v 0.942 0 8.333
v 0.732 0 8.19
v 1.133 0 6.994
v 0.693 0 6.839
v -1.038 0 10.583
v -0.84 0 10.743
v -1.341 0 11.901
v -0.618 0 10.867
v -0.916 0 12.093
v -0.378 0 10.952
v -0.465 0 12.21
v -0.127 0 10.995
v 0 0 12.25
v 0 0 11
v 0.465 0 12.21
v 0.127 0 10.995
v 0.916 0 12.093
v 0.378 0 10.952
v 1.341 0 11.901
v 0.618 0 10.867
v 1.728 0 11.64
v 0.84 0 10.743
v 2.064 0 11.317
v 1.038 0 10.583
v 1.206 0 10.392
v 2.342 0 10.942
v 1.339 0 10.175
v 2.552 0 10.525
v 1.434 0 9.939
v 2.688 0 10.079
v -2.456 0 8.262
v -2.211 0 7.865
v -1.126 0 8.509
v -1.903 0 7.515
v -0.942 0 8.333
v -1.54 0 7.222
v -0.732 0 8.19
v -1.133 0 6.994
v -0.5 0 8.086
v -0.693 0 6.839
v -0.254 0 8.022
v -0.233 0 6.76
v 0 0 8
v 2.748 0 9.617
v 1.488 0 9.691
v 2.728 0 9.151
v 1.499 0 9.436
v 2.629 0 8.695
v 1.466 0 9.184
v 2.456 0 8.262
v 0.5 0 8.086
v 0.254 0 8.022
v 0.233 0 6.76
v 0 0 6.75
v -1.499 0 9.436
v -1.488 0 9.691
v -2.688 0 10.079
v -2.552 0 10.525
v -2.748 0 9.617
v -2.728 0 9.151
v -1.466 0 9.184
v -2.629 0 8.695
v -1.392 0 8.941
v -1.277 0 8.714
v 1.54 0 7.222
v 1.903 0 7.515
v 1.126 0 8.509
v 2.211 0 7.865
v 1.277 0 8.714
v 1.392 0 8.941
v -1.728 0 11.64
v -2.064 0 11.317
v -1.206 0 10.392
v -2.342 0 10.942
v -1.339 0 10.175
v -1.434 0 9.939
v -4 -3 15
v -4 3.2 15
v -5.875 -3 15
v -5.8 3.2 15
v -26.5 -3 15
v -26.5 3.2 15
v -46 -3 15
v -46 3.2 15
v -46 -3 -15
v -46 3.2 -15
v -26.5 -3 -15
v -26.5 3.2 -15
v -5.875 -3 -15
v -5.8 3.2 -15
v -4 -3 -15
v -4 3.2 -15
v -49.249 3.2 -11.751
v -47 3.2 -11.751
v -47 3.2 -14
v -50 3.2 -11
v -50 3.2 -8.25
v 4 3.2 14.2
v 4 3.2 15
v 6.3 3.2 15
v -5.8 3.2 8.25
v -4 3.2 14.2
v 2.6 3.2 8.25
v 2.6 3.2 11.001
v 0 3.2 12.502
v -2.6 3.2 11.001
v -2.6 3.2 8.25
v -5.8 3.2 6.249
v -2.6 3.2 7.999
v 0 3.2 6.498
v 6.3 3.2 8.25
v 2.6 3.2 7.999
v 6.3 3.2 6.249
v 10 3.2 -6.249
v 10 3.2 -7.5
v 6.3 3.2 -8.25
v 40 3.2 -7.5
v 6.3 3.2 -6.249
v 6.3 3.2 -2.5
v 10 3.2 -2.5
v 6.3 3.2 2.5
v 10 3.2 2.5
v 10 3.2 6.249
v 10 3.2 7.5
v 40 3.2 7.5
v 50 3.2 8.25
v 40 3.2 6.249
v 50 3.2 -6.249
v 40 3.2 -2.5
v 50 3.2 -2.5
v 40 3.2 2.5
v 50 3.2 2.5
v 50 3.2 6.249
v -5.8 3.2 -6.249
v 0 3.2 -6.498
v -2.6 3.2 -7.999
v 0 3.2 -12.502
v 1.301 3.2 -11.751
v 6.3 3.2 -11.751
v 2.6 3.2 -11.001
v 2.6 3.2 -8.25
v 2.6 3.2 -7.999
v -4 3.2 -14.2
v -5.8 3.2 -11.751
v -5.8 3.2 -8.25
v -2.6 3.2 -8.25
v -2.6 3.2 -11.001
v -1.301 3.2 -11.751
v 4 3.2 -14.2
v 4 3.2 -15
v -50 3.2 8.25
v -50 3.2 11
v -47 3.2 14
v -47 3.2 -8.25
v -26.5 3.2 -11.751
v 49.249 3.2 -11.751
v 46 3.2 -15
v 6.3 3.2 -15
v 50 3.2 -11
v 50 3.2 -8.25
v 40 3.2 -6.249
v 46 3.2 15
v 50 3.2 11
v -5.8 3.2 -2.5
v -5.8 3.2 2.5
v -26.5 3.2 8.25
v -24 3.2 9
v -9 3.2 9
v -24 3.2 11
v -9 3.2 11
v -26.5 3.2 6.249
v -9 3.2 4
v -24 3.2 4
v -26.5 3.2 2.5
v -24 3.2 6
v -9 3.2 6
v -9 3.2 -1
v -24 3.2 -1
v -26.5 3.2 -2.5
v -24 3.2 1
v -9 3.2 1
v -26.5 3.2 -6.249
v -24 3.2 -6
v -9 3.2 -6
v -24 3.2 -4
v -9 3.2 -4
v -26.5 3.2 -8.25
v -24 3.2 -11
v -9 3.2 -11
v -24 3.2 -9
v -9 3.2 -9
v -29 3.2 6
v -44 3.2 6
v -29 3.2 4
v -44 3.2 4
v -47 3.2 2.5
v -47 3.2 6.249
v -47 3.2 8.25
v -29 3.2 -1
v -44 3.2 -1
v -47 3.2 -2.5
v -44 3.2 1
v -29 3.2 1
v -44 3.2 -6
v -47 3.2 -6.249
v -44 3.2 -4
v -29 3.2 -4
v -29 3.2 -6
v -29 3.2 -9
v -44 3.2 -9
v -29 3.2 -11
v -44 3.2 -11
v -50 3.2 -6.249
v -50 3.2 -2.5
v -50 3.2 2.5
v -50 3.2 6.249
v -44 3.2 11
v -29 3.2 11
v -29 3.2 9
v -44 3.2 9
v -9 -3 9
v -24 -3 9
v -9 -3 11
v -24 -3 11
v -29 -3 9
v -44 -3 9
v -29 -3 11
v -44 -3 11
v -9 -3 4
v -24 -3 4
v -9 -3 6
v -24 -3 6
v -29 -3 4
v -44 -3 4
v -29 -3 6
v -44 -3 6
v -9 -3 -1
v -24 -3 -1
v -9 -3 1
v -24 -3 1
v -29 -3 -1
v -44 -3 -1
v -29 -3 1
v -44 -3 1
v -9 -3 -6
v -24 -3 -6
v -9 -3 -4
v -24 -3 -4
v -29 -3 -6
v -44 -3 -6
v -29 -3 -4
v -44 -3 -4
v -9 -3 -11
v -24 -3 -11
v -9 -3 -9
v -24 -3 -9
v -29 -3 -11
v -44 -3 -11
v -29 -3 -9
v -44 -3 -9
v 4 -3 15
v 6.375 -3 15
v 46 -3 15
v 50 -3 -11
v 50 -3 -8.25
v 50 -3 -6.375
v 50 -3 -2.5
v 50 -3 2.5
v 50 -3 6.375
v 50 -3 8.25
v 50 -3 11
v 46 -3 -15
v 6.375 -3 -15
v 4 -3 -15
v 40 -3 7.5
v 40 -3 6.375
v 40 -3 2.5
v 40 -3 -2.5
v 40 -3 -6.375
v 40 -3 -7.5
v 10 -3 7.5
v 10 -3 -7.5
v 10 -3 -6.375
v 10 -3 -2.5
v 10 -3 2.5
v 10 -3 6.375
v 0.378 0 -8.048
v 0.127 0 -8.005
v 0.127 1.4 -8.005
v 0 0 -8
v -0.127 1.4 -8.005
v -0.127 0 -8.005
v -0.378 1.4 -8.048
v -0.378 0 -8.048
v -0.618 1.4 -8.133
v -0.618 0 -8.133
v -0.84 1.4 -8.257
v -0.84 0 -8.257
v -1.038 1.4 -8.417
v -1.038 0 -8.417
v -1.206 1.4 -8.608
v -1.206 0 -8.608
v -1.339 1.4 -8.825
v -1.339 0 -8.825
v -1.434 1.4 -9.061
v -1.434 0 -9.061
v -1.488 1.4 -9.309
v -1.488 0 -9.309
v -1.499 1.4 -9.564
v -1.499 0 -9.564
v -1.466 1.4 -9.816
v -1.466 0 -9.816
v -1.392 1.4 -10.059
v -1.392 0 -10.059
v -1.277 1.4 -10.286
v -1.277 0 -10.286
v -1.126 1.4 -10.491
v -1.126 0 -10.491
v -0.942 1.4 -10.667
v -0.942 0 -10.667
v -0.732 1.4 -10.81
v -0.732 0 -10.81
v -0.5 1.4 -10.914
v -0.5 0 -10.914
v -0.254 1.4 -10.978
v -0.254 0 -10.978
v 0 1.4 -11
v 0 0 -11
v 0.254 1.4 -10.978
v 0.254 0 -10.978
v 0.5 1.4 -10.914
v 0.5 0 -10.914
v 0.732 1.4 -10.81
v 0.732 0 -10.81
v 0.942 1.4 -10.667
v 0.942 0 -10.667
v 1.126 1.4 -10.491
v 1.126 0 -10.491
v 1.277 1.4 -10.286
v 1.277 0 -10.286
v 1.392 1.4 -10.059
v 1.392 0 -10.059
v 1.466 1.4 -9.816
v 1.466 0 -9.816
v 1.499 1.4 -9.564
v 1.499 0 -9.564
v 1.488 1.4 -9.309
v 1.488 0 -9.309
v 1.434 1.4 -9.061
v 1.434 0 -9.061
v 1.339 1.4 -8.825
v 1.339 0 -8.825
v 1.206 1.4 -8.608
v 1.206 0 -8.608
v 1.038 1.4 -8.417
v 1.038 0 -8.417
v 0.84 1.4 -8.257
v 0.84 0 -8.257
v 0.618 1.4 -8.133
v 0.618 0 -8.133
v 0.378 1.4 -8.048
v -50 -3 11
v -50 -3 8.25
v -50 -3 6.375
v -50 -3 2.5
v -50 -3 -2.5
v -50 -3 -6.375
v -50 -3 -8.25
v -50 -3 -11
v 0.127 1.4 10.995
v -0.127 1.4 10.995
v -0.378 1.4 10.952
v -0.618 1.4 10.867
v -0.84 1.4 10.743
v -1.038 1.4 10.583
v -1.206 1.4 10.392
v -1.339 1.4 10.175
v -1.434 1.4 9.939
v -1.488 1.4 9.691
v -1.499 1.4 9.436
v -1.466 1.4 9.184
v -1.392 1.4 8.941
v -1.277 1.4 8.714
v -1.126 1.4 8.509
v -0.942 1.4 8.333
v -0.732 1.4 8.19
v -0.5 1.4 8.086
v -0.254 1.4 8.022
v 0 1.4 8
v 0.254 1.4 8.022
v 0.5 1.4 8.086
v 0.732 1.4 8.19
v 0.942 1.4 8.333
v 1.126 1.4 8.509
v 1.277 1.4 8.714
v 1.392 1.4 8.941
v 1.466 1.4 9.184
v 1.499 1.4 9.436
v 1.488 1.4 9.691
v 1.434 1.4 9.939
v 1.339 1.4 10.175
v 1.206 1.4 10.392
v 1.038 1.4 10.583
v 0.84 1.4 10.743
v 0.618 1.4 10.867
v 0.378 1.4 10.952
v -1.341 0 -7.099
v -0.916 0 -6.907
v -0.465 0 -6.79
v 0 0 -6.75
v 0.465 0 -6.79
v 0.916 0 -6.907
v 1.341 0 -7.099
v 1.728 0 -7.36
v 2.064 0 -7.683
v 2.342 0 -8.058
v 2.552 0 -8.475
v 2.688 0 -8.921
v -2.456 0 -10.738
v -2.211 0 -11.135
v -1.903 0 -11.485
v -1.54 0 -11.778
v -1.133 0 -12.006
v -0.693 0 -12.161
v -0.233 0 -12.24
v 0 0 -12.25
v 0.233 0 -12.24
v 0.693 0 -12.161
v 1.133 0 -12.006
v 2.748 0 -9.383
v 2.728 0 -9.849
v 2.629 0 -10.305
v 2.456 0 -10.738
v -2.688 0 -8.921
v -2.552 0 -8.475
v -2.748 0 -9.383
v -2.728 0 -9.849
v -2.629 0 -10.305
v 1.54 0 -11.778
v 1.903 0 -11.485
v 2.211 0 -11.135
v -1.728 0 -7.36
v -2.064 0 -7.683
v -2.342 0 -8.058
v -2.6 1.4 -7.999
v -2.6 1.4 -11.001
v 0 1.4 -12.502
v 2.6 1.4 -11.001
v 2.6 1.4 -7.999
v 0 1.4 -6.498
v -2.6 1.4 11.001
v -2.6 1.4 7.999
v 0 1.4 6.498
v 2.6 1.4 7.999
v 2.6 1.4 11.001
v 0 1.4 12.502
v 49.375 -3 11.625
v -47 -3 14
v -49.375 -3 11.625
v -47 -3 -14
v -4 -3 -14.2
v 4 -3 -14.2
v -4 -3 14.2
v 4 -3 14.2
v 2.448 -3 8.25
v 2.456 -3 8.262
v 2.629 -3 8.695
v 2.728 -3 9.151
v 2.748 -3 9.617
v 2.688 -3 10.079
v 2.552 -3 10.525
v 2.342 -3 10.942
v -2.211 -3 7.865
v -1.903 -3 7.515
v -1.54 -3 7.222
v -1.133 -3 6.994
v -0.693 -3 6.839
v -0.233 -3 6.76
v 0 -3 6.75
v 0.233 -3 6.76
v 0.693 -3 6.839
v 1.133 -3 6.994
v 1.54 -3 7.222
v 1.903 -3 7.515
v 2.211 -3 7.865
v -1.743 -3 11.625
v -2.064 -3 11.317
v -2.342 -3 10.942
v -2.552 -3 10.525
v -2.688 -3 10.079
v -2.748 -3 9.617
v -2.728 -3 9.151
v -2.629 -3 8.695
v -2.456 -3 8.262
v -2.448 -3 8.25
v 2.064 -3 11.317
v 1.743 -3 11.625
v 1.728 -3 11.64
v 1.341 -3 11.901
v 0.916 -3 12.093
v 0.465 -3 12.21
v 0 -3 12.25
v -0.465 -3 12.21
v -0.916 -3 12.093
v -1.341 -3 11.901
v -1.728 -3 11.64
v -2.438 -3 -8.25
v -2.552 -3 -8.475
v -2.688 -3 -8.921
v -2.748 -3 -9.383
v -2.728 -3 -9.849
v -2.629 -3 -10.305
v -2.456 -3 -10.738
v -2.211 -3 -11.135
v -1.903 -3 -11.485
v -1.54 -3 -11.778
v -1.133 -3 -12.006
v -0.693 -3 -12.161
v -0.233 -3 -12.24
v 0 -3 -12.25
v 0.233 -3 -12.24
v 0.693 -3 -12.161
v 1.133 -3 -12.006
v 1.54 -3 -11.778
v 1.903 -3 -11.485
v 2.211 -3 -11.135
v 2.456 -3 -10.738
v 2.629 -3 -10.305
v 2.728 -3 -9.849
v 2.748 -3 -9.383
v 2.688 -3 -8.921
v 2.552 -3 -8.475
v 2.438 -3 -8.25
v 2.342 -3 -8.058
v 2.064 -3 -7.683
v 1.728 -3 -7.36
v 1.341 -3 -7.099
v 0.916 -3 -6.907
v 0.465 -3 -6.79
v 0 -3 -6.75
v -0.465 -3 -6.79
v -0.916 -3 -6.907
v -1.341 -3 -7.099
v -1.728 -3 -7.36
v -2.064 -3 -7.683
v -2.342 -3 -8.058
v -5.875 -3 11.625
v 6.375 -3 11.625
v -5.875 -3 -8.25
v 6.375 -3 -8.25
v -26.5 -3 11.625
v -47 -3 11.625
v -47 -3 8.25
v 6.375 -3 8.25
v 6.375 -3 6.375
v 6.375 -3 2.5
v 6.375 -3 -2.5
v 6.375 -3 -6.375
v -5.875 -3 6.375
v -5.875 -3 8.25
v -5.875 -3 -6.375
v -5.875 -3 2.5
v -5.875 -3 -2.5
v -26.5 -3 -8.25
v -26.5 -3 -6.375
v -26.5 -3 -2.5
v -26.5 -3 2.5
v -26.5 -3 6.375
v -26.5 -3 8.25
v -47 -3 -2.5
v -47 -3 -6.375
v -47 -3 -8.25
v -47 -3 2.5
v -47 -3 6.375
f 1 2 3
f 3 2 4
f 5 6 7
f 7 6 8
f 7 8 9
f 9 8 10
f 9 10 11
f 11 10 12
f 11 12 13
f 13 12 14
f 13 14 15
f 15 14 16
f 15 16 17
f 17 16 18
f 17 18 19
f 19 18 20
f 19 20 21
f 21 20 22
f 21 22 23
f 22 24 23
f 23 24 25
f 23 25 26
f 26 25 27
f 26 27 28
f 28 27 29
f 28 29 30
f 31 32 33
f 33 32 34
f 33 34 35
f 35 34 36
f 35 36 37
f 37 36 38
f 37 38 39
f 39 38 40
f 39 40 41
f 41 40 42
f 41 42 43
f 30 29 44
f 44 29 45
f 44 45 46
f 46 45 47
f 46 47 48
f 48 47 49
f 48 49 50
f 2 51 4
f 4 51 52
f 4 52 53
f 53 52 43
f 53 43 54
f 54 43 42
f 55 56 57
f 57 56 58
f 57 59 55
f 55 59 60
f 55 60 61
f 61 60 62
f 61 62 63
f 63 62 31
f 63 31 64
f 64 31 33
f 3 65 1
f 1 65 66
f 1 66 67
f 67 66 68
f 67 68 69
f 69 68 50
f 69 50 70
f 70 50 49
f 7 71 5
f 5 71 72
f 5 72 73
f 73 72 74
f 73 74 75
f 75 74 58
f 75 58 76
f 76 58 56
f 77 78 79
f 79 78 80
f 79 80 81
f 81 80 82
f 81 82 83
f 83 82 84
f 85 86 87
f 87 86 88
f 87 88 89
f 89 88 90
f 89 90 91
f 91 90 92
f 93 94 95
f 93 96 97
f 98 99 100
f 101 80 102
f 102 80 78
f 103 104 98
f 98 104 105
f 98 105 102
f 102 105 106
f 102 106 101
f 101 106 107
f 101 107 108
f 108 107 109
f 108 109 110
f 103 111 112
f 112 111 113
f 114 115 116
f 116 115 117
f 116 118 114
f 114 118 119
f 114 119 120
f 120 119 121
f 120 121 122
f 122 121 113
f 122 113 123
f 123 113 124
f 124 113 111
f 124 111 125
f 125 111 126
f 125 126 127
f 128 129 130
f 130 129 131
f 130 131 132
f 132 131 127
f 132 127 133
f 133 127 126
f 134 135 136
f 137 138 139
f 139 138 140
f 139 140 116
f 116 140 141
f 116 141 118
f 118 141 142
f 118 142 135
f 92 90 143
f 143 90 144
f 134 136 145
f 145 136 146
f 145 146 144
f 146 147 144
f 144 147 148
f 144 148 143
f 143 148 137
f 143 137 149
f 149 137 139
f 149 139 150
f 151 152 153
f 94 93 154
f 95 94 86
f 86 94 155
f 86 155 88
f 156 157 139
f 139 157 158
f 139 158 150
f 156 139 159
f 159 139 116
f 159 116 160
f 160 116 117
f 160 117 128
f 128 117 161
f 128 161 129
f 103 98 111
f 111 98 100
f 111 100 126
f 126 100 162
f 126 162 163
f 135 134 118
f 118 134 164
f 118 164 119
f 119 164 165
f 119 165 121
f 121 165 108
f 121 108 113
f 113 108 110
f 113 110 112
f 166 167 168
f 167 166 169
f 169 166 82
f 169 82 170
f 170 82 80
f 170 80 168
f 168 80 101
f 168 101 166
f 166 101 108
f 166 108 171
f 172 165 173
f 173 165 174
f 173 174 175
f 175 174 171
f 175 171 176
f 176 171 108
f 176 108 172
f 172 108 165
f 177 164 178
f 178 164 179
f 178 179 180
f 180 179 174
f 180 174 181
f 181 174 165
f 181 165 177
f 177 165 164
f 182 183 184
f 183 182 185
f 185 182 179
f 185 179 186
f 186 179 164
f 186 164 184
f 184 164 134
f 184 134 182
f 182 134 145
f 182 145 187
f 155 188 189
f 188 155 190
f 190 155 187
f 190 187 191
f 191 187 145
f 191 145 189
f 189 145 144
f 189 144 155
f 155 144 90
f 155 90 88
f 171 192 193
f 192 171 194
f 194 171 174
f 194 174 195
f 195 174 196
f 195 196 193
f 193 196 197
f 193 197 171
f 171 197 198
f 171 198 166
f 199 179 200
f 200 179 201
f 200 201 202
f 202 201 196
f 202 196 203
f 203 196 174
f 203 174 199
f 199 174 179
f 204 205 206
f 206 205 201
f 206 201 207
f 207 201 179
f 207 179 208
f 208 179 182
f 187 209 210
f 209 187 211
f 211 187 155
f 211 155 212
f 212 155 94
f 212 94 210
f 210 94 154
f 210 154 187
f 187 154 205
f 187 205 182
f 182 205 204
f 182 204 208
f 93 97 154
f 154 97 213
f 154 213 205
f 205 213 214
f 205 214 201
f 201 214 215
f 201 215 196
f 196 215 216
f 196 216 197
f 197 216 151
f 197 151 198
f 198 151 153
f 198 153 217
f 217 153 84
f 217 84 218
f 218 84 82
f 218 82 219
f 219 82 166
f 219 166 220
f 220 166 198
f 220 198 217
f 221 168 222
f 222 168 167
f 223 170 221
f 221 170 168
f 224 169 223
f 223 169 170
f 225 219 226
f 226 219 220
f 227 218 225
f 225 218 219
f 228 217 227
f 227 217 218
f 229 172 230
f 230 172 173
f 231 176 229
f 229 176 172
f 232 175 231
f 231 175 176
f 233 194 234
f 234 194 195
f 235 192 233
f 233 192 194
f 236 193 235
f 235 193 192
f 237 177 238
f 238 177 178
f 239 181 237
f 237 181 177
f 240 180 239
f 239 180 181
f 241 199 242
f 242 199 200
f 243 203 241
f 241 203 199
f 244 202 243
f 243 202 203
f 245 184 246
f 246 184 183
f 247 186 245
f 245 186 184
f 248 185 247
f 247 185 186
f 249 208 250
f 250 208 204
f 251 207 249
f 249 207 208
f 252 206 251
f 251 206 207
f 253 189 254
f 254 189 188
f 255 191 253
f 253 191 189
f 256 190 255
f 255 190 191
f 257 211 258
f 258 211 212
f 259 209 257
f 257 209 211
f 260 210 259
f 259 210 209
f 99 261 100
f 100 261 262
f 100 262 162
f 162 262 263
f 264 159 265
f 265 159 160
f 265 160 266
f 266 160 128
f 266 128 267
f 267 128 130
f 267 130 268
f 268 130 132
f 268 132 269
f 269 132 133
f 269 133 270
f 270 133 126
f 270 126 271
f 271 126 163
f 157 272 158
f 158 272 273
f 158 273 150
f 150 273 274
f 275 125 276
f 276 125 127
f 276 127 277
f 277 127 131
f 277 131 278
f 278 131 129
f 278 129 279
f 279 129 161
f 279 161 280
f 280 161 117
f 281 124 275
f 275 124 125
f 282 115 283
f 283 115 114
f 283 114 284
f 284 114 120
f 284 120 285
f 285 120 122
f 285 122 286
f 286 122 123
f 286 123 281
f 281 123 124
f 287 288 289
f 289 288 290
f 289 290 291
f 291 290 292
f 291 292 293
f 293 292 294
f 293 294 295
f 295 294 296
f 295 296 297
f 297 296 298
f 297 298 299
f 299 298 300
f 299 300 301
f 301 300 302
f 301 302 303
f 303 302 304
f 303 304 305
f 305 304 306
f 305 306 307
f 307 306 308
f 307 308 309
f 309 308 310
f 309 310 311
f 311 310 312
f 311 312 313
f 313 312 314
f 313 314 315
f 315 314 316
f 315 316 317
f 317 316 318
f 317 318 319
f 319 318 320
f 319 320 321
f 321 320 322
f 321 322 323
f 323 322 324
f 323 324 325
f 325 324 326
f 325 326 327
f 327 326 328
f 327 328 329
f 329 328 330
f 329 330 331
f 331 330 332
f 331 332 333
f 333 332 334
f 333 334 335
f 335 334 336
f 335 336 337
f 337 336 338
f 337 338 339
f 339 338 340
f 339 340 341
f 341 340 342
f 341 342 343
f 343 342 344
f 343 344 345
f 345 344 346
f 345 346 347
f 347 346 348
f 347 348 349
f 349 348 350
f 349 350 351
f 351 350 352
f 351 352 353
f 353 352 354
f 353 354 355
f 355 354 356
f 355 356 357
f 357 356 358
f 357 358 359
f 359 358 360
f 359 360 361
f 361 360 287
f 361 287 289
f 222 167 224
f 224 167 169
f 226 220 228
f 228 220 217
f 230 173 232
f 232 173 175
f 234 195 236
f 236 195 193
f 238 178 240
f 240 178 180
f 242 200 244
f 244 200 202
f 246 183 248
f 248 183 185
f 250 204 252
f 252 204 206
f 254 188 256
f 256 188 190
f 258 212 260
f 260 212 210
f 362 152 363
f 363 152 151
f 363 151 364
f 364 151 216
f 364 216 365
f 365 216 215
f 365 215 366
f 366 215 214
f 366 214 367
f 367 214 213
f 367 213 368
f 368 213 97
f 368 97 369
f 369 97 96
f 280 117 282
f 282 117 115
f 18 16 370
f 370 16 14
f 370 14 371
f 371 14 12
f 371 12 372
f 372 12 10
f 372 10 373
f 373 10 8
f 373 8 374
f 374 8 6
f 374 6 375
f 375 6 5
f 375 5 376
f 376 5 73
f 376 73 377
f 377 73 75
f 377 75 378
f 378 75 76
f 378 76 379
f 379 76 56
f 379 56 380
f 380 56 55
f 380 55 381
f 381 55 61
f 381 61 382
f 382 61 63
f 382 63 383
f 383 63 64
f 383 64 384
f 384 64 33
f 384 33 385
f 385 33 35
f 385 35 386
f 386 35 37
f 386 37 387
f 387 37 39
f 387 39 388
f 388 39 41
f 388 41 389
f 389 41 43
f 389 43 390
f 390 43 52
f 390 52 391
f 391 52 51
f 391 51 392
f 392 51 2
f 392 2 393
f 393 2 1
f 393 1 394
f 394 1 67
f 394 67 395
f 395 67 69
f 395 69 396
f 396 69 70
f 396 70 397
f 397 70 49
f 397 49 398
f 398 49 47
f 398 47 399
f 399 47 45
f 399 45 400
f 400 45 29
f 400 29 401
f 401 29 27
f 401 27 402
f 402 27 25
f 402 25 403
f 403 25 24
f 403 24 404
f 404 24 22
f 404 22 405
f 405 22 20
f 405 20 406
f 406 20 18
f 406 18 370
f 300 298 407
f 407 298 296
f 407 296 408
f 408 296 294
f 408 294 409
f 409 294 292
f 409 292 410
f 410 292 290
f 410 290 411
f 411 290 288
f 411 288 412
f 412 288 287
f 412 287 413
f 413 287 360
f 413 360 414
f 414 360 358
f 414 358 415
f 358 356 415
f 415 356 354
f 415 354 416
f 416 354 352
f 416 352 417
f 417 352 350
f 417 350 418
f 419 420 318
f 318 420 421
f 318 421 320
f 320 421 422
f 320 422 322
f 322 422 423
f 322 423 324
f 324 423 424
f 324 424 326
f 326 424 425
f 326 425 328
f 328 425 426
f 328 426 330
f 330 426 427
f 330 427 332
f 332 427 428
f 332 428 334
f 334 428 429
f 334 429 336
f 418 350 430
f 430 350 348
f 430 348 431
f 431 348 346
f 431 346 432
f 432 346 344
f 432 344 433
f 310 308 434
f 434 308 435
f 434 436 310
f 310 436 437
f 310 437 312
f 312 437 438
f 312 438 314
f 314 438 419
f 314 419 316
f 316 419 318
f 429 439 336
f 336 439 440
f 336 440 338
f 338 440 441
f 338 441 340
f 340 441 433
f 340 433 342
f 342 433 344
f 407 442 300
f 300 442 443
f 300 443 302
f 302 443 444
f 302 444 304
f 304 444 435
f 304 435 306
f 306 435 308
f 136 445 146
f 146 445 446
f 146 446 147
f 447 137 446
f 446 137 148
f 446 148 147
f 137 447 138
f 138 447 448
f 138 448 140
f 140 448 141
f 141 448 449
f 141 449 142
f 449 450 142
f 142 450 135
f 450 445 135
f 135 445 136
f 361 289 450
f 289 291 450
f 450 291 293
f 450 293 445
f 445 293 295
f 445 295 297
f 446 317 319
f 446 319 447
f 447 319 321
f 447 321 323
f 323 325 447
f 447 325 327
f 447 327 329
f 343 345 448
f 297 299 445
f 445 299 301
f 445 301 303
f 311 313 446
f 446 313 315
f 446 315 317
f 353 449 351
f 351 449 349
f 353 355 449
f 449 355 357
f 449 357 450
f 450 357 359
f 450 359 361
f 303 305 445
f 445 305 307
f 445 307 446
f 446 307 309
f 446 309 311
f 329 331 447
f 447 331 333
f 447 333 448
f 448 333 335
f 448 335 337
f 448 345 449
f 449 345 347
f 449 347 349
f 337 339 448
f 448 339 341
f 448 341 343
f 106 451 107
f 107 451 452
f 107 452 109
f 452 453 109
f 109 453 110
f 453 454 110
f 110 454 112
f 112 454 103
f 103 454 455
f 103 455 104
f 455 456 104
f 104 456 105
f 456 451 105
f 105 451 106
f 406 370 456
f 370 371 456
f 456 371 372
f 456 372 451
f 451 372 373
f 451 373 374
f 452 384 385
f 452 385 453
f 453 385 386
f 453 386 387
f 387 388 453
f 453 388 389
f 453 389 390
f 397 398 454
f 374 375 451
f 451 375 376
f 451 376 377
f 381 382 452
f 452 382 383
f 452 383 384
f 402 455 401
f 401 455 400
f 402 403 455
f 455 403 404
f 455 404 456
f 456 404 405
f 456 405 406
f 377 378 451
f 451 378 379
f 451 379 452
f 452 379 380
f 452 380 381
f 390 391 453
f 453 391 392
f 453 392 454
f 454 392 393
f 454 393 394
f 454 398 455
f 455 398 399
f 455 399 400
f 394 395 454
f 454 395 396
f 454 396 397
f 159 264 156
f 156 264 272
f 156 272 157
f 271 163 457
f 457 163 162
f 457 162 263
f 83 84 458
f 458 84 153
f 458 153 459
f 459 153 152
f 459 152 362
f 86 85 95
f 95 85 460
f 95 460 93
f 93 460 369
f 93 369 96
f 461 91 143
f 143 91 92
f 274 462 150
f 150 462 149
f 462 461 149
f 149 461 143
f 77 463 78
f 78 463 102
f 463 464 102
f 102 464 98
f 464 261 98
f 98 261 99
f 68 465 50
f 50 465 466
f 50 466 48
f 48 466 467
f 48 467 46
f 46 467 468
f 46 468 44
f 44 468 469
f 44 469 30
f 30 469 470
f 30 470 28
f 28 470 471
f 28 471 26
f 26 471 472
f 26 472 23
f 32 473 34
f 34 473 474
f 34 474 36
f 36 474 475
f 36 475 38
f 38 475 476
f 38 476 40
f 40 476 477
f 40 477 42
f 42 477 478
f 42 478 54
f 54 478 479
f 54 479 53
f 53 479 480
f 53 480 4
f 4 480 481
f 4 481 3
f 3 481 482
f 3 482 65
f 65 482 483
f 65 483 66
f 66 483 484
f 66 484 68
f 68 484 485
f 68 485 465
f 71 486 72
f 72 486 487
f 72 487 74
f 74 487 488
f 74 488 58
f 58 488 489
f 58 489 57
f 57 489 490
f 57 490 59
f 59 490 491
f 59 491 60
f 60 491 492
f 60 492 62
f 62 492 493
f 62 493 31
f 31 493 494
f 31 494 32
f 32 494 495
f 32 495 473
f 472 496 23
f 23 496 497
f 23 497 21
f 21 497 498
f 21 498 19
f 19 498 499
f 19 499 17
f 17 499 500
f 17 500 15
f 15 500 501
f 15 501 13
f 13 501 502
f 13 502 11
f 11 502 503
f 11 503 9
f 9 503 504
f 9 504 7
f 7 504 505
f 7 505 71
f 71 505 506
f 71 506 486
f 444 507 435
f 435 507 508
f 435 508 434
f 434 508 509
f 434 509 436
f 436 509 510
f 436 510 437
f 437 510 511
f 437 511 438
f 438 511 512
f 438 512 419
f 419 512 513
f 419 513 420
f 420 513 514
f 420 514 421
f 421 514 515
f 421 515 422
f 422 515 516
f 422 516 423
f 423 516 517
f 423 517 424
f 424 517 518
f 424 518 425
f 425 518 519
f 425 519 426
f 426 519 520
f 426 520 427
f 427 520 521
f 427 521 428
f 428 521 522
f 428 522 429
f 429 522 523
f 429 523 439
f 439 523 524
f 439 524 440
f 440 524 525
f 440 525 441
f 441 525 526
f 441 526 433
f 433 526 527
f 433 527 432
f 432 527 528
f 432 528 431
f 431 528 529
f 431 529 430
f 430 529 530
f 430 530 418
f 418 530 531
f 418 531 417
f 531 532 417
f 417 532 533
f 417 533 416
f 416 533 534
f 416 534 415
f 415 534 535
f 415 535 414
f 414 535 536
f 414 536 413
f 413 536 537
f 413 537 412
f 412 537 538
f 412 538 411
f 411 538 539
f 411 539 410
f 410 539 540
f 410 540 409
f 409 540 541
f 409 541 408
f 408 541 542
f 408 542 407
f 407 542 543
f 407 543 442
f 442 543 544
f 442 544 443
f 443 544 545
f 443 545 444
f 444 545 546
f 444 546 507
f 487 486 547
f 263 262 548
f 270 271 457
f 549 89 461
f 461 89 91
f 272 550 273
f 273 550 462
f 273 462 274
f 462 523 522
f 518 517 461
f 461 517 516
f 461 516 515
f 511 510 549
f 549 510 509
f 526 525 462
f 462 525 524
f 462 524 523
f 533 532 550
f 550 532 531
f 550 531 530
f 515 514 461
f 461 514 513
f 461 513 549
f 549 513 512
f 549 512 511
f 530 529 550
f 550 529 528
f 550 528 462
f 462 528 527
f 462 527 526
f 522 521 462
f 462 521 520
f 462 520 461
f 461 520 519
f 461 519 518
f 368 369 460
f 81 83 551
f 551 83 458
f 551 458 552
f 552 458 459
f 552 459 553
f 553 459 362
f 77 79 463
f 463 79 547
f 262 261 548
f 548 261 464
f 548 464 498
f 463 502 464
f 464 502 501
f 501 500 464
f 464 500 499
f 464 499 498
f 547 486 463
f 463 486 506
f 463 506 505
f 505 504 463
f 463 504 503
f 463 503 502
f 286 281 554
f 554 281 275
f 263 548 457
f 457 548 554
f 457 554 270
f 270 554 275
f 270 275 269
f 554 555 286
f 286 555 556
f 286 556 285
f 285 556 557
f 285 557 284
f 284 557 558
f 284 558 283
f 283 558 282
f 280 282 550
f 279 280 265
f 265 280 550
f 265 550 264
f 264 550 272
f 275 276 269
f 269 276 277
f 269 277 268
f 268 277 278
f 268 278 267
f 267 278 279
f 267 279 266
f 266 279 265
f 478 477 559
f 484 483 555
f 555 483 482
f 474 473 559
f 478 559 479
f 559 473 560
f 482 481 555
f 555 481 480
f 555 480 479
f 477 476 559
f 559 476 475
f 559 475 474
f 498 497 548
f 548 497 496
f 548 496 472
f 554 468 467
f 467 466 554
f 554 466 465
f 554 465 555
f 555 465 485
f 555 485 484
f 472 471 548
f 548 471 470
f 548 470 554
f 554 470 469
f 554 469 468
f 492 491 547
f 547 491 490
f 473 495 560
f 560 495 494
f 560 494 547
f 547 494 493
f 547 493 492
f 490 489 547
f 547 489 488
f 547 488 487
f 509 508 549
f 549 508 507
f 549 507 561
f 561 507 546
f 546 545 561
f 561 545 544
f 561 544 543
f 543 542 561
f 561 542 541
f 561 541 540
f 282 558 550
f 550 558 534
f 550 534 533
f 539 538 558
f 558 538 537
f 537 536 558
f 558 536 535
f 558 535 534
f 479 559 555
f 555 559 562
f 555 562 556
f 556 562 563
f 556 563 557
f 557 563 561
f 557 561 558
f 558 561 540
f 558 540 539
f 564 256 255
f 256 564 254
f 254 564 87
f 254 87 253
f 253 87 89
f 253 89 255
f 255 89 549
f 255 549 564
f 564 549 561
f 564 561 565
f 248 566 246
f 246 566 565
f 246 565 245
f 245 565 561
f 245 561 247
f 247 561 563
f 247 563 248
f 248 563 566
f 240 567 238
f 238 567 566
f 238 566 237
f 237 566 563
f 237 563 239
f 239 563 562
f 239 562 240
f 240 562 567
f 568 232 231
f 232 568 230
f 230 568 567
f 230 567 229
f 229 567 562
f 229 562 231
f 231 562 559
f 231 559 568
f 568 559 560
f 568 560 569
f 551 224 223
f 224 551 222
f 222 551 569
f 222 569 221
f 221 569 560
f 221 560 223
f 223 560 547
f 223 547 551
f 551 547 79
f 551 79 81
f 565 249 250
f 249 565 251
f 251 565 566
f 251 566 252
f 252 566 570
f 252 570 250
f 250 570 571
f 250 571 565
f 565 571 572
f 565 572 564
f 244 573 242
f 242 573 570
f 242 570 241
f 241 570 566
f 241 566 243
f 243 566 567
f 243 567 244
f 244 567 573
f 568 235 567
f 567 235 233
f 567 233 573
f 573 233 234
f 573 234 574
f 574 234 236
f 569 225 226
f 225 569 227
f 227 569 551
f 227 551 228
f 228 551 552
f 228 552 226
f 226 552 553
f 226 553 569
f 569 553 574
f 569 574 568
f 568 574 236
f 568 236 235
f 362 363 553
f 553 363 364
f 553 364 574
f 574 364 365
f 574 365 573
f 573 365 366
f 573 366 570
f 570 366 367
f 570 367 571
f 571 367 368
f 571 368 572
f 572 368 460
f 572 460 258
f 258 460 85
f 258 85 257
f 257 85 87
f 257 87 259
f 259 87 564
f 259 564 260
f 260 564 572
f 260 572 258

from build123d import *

# Parameters (mm, degrees)
SKETCH_1_W          = 100
SKETCH_1_H          = 30
SKETCH_1_R          = 1.5
SKETCH_1_W_2        = 15
SKETCH_1_H_2        = 2
SKETCH_1_W_3        = 30
SKETCH_1_H_3        = 15
EXTRUDE_1_DEPTH     = 3.2
CUT_EXTRUDE_START   = 3.2
CUT_EXTRUDE_1_DEPTH = 1.8
CHAMFER_1_SIZE      = 4
SKETCH_2_W          = 8
SKETCH_2_H          = 0.8
CUT_EXTRUDE_2_DEPTH = 53.299521986
EXTRUDE_START       = 3
SKETCH_3_R          = 2.75
SKETCH_3_W          = 30
SKETCH_3_H          = 15
SKETCH_3_W_2        = 15
SKETCH_3_H_2        = 2
SKETCH_3_R_2        = 1.5
EXTRUDE_2_DEPTH     = 3


with BuildPart() as part:
    # 스케치1 → 보스-돌출1 (new body)
    with BuildSketch(Plane(origin=(0, 0, 0), x_dir=(1, 0, 0), z_dir=(0, 1, 0))):
        Rectangle(SKETCH_1_W, SKETCH_1_H)
        with Locations(Location((0, 9.5, 0), (0, 0, 270))):
            Circle(SKETCH_1_R, mode=Mode.SUBTRACT)
        with Locations(Location((0, -9.5, 0), (0, 0, 270))):
            Circle(SKETCH_1_R, mode=Mode.SUBTRACT)
        with Locations((-16.5, 10)):
            Rectangle(SKETCH_1_W_2, SKETCH_1_H_2, mode=Mode.SUBTRACT)
        with Locations((25, 0)):
            Rectangle(SKETCH_1_W_3, SKETCH_1_H_3, mode=Mode.SUBTRACT)
        with Locations((-36.5, 10)):
            Rectangle(SKETCH_1_W_2, SKETCH_1_H_2, mode=Mode.SUBTRACT)
        with Locations((-36.5, 5)):
            Rectangle(SKETCH_1_W_2, SKETCH_1_H_2, mode=Mode.SUBTRACT)
        with Locations((-16.5, 5)):
            Rectangle(SKETCH_1_W_2, SKETCH_1_H_2, mode=Mode.SUBTRACT)
        with Locations((-36.5, 0)):
            Rectangle(SKETCH_1_W_2, SKETCH_1_H_2, mode=Mode.SUBTRACT)
        with Locations((-16.5, 0)):
            Rectangle(SKETCH_1_W_2, SKETCH_1_H_2, mode=Mode.SUBTRACT)
        with Locations((-36.5, -5)):
            Rectangle(SKETCH_1_W_2, SKETCH_1_H_2, mode=Mode.SUBTRACT)
        with Locations((-16.5, -5)):
            Rectangle(SKETCH_1_W_2, SKETCH_1_H_2, mode=Mode.SUBTRACT)
        with Locations((-36.5, -10)):
            Rectangle(SKETCH_1_W_2, SKETCH_1_H_2, mode=Mode.SUBTRACT)
        with Locations((-16.5, -10)):
            Rectangle(SKETCH_1_W_2, SKETCH_1_H_2, mode=Mode.SUBTRACT)
    extrude(amount=EXTRUDE_1_DEPTH)

    # 스케치1<3> → 컷-돌출1 (cut)
    with BuildSketch(Plane(origin=(0, 0, 0), x_dir=(1, 0, 0), z_dir=(0, 1, 0)).offset(CUT_EXTRUDE_START)):
        Polygon((0, 6.4977786), (2.6, 7.9988893), (2.6, 11.0011107), (0, 12.5022214), (-2.6, 11.0011107), (-2.6, 7.9988893), align=None)
        Polygon((2.6, -7.9988893), (0, -6.4977786), (-2.6, -7.9988893), (-2.6, -11.0011107), (0, -12.5022214), (2.6, -11.0011107), align=None)
    extrude(amount=-CUT_EXTRUDE_1_DEPTH, mode=Mode.SUBTRACT)

    # 모따기1
    chamfer_1_edges = [part.edges().sort_by_distance(p)[0] for p in [
        (-50, 1.6, 15),
        (-50, 1.6, -15),
        (50, 1.6, -15),
        (50, 1.6, 15),
    ]]
    chamfer(chamfer_1_edges, length=CHAMFER_1_SIZE)

    # 스케치2 → 컷-돌출2 (cut, through all)
    with BuildSketch(Plane(origin=(0, 3.2, 0), x_dir=(1, 0, 0), z_dir=(0, 1, 0))):
        with Locations((0, 14.6)):
            Rectangle(SKETCH_2_W, SKETCH_2_H)
        with Locations((0, -14.6)):
            Rectangle(SKETCH_2_W, SKETCH_2_H)
    extrude(amount=-CUT_EXTRUDE_2_DEPTH, mode=Mode.SUBTRACT)

    # 스케치3 → 보스-돌출2 (add)
    # profile 1 of 3: a face of its own
    with BuildSketch(Plane.XZ.offset(EXTRUDE_START)):
        Polygon((4, 14.2), (-4, 14.2), (-4, 15), (-46, 15), (-50, 11), (-50, -11), (-46, -15), (-4, -15), (-4, -14.2), (4, -14.2), (4, -15), (46, -15), (50, -11), (50, 11), (46, 15), (4, 15), align=None)
        with Locations(Location((0, 9.5, 0), (0, 0, 270))):
            Circle(SKETCH_3_R, mode=Mode.SUBTRACT)
        with Locations(Location((0, -9.5, 0), (0, 0, 270))):
            Circle(SKETCH_3_R, mode=Mode.SUBTRACT)
        with Locations((25, 0)):
            Rectangle(SKETCH_3_W, SKETCH_3_H, mode=Mode.SUBTRACT)
        with Locations((-36.5, 10)):
            Rectangle(SKETCH_3_W_2, SKETCH_3_H_2, mode=Mode.SUBTRACT)
        with Locations((-36.5, 5)):
            Rectangle(SKETCH_3_W_2, SKETCH_3_H_2, mode=Mode.SUBTRACT)
        with Locations((-36.5, 0)):
            Rectangle(SKETCH_3_W_2, SKETCH_3_H_2, mode=Mode.SUBTRACT)
        with Locations((-36.5, -5)):
            Rectangle(SKETCH_3_W_2, SKETCH_3_H_2, mode=Mode.SUBTRACT)
        with Locations((-36.5, -10)):
            Rectangle(SKETCH_3_W_2, SKETCH_3_H_2, mode=Mode.SUBTRACT)
        with Locations((-16.5, -10)):
            Rectangle(SKETCH_3_W_2, SKETCH_3_H_2, mode=Mode.SUBTRACT)
        with Locations((-16.5, -5)):
            Rectangle(SKETCH_3_W_2, SKETCH_3_H_2, mode=Mode.SUBTRACT)
        with Locations((-16.5, 0)):
            Rectangle(SKETCH_3_W_2, SKETCH_3_H_2, mode=Mode.SUBTRACT)
        with Locations((-16.5, 5)):
            Rectangle(SKETCH_3_W_2, SKETCH_3_H_2, mode=Mode.SUBTRACT)
        with Locations((-16.5, 10)):
            Rectangle(SKETCH_3_W_2, SKETCH_3_H_2, mode=Mode.SUBTRACT)
    # profile 2 of 3: a face of its own
    with BuildSketch(Plane.XZ.offset(EXTRUDE_START)):
        with Locations(Location((0, -9.5, 0), (0, 0, 270))):
            Circle(SKETCH_3_R_2)
    # profile 3 of 3: a face of its own
    with BuildSketch(Plane.XZ.offset(EXTRUDE_START)):
        with Locations(Location((0, 9.5, 0), (0, 0, 270))):
            Circle(SKETCH_3_R_2)
    extrude(amount=-EXTRUDE_2_DEPTH)


with BuildPart() as extrude_2_kept_piece:
    # of the separate pieces the step leaves, the one the design keeps (extrude_2_pieces_kept)
    add(part.part.solids().sort_by_distance((-4, -3, 15))[0])


solid = extrude_2_kept_piece.part
